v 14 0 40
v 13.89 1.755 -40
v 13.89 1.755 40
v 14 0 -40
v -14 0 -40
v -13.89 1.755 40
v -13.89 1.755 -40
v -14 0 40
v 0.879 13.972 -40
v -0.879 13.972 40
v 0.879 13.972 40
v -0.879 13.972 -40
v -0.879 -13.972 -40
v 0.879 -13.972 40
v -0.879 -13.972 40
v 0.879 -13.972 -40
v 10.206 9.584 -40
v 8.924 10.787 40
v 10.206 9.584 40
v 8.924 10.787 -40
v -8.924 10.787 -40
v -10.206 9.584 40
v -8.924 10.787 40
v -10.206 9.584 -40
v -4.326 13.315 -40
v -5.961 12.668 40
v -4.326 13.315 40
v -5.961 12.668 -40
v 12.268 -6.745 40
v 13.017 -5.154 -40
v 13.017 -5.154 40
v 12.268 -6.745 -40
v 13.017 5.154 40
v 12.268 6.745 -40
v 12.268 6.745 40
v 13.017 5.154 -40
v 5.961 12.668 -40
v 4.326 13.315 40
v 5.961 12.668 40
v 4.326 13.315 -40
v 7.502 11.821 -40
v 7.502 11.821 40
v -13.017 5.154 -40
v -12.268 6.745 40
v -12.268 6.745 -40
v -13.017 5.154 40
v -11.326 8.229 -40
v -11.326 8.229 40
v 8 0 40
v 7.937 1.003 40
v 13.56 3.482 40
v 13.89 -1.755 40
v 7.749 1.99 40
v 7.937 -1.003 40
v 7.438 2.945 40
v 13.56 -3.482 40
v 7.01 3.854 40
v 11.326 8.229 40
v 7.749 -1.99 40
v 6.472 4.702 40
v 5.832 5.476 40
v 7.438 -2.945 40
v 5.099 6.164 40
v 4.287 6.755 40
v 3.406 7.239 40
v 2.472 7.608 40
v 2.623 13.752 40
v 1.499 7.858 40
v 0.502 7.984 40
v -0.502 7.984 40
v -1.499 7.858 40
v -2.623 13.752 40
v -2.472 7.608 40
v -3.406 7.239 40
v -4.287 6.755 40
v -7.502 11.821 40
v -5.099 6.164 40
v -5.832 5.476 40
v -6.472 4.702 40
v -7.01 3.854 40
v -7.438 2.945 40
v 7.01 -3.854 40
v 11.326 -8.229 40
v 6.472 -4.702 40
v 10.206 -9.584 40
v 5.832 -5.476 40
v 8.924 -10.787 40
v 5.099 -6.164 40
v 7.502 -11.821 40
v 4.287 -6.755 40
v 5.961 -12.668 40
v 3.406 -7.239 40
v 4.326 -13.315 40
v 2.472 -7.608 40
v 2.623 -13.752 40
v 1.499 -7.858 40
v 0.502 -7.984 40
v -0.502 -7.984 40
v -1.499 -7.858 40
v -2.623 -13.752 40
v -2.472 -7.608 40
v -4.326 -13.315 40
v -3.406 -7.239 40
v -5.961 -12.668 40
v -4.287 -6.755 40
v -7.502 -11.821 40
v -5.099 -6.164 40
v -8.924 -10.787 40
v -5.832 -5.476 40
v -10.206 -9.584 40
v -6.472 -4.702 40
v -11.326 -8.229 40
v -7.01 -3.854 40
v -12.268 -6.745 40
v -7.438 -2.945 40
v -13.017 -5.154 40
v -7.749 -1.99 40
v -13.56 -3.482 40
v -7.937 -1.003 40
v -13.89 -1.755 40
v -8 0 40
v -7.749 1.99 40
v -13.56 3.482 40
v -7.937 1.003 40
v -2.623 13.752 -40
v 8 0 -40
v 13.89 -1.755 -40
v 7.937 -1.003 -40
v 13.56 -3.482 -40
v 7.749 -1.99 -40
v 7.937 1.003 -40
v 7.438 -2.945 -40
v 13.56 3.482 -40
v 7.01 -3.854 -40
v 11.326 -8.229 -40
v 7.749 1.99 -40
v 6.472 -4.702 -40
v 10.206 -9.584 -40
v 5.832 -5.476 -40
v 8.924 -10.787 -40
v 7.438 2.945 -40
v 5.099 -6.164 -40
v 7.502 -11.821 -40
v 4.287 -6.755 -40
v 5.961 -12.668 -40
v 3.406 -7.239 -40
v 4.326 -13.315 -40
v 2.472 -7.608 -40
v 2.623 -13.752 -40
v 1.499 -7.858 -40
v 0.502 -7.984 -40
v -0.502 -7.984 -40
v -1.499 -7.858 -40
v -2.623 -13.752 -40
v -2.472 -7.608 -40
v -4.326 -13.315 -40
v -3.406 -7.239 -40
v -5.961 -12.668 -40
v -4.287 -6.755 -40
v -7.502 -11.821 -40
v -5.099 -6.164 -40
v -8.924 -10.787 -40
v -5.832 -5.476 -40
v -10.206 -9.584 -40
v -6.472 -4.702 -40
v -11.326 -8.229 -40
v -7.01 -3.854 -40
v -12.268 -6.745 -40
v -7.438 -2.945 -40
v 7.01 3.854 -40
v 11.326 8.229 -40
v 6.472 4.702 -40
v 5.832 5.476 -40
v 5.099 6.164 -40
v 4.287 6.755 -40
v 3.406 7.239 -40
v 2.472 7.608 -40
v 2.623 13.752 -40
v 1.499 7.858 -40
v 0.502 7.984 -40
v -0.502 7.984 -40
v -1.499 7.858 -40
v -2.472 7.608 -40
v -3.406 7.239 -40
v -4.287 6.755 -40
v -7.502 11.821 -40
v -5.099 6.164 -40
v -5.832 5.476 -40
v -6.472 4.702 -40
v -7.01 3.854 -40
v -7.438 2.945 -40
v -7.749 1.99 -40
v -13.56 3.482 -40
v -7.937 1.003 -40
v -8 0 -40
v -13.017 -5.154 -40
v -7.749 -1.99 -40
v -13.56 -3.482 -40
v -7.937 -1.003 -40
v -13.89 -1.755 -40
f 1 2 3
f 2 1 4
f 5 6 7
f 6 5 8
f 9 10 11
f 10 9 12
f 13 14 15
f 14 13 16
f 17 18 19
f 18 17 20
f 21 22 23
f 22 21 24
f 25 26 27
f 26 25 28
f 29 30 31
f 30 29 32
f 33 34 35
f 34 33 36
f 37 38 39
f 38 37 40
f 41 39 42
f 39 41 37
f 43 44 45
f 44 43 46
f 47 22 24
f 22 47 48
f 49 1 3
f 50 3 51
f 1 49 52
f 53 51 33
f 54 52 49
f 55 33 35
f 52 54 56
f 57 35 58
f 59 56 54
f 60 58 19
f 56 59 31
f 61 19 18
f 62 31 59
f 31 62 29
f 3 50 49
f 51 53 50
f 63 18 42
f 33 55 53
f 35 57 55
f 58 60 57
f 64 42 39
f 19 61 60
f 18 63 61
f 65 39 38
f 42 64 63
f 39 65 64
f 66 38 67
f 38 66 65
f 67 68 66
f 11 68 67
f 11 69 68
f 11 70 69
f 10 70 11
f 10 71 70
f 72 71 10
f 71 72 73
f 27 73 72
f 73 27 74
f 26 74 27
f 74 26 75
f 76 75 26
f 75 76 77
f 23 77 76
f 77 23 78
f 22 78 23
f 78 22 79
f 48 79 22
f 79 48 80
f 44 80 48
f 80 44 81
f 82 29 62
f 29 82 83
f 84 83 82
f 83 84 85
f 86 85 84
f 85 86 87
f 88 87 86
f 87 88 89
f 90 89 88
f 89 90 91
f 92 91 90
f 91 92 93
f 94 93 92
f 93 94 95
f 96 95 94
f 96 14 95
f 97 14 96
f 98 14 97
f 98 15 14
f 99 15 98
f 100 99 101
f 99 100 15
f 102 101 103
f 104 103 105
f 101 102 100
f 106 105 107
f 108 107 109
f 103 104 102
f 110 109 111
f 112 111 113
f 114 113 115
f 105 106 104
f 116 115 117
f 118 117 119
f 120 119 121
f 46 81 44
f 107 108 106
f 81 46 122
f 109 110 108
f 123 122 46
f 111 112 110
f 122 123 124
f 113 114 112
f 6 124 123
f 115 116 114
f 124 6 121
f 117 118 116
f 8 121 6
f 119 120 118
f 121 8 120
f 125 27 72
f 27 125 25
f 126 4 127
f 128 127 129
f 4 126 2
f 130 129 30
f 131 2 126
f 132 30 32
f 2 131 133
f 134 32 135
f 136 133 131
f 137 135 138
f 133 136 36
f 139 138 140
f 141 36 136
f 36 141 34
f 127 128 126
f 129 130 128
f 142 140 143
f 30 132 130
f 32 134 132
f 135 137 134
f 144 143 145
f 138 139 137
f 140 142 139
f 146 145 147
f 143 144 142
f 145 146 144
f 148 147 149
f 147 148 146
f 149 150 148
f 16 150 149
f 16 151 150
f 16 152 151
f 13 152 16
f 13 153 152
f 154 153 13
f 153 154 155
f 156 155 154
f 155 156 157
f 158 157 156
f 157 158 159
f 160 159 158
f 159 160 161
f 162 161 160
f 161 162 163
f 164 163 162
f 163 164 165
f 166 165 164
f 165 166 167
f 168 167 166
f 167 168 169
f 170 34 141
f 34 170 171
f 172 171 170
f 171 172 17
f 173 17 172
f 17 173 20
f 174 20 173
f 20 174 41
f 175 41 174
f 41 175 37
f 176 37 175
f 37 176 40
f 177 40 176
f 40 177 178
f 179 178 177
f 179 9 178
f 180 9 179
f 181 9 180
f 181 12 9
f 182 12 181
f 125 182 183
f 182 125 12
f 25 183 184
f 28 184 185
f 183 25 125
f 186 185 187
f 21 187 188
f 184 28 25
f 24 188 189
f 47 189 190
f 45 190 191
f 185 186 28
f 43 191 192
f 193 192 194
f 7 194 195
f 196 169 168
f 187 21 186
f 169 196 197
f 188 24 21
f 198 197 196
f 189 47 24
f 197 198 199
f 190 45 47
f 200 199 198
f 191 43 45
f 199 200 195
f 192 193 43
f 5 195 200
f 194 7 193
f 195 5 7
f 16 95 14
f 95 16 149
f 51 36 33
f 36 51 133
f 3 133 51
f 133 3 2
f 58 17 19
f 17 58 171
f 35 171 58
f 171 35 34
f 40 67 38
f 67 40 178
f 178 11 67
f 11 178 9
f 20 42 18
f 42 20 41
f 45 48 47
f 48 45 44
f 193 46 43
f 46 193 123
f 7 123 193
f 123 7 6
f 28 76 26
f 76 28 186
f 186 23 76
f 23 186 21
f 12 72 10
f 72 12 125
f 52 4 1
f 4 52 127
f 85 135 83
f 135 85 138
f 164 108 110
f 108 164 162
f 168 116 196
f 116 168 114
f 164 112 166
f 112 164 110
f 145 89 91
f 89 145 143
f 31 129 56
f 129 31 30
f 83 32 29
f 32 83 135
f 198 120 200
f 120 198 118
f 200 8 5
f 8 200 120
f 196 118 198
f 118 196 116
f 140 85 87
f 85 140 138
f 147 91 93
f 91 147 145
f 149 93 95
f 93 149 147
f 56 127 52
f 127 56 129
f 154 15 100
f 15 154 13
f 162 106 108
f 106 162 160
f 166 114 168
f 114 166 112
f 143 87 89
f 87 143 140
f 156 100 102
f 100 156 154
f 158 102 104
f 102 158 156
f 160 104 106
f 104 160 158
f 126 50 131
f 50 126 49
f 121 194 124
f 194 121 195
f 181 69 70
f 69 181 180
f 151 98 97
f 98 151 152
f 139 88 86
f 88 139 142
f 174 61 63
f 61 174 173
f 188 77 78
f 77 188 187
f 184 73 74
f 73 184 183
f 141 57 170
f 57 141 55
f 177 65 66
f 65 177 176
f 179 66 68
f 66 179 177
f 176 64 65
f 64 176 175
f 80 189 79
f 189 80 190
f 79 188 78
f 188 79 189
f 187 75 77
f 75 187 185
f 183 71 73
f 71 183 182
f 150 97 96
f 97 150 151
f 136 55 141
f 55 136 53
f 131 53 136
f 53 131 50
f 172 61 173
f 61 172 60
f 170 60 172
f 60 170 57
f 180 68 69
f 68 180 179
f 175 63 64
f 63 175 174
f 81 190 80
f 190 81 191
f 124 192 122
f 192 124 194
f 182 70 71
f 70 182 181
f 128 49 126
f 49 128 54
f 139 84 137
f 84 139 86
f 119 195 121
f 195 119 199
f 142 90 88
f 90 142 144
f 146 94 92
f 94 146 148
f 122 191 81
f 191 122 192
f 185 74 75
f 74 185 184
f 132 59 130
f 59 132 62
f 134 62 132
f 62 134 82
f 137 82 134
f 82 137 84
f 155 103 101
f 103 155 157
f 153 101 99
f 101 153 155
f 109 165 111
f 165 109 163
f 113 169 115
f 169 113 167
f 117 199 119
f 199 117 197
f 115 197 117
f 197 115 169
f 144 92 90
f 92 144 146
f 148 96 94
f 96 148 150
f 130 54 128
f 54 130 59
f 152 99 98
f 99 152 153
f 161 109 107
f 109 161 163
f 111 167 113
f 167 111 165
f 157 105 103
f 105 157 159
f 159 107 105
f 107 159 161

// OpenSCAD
$fn = 50;


difference() {
	union() {
		translate(v = [0, 0, -40.0000000000]) {
			cylinder(h = 80, r = 14.0000000000);
		}
	}
	union() {
		translate(v = [0, 0, -100.0000000000]) {
			cylinder(h = 200, r = 8);
		}
	}
}
